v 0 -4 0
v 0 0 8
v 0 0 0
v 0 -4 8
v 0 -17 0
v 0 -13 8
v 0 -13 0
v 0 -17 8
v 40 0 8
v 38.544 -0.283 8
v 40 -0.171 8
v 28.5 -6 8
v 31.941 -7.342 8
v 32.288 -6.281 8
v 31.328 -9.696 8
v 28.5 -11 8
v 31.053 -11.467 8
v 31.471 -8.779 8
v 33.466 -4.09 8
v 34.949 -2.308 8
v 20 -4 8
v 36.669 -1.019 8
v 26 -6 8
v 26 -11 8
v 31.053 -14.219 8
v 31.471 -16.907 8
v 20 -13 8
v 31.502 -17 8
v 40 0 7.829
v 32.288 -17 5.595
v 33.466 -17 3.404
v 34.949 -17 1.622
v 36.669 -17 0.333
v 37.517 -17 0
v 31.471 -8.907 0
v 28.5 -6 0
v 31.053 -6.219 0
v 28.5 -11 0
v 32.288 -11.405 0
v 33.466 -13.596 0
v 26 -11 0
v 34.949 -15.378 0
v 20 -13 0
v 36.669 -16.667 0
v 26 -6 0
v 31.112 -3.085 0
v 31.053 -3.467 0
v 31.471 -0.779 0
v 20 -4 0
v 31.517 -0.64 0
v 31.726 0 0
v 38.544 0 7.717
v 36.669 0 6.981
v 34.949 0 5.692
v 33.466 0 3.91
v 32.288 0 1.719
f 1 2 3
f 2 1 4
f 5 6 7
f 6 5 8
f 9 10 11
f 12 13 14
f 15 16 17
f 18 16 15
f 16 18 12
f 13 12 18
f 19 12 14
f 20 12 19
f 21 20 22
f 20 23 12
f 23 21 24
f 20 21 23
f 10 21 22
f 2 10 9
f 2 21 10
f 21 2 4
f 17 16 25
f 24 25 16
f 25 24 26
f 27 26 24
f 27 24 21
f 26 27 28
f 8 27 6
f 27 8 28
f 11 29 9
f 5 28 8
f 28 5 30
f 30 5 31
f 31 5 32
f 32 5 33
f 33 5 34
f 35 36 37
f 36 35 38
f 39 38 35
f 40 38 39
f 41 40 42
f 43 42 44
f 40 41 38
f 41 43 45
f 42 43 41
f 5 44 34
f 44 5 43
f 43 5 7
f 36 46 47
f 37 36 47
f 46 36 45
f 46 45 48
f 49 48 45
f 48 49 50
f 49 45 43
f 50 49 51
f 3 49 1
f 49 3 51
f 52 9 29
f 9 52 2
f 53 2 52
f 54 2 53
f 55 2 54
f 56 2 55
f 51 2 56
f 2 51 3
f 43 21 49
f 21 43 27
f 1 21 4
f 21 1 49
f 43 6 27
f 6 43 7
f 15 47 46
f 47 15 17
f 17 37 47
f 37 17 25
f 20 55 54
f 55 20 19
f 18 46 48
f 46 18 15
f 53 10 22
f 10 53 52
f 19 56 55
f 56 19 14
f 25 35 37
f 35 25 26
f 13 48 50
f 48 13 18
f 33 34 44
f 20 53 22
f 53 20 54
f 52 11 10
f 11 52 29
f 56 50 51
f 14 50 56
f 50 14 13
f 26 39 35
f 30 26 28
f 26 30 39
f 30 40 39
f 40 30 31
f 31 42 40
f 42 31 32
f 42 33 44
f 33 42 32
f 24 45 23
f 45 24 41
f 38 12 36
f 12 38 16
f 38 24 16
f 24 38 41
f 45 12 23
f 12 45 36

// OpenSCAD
//#translate([0,17,0])import("airtripper_i3_mount_bracket_mockup_v2.stl");
mirror([0,1,0])
difference(){
union(){
cube([40,17,8]);


}

translate([-1,4,-1])cube([21,9,35]);
translate([0,17/2+3,1])rotate([45,0,0])translate([0,-17/2,0])translate([40,0-1,4])rotate([-90,0,0])cylinder(r=9,h=20);

translate([26,6,-5])cube([2.5,5,20]);
}
